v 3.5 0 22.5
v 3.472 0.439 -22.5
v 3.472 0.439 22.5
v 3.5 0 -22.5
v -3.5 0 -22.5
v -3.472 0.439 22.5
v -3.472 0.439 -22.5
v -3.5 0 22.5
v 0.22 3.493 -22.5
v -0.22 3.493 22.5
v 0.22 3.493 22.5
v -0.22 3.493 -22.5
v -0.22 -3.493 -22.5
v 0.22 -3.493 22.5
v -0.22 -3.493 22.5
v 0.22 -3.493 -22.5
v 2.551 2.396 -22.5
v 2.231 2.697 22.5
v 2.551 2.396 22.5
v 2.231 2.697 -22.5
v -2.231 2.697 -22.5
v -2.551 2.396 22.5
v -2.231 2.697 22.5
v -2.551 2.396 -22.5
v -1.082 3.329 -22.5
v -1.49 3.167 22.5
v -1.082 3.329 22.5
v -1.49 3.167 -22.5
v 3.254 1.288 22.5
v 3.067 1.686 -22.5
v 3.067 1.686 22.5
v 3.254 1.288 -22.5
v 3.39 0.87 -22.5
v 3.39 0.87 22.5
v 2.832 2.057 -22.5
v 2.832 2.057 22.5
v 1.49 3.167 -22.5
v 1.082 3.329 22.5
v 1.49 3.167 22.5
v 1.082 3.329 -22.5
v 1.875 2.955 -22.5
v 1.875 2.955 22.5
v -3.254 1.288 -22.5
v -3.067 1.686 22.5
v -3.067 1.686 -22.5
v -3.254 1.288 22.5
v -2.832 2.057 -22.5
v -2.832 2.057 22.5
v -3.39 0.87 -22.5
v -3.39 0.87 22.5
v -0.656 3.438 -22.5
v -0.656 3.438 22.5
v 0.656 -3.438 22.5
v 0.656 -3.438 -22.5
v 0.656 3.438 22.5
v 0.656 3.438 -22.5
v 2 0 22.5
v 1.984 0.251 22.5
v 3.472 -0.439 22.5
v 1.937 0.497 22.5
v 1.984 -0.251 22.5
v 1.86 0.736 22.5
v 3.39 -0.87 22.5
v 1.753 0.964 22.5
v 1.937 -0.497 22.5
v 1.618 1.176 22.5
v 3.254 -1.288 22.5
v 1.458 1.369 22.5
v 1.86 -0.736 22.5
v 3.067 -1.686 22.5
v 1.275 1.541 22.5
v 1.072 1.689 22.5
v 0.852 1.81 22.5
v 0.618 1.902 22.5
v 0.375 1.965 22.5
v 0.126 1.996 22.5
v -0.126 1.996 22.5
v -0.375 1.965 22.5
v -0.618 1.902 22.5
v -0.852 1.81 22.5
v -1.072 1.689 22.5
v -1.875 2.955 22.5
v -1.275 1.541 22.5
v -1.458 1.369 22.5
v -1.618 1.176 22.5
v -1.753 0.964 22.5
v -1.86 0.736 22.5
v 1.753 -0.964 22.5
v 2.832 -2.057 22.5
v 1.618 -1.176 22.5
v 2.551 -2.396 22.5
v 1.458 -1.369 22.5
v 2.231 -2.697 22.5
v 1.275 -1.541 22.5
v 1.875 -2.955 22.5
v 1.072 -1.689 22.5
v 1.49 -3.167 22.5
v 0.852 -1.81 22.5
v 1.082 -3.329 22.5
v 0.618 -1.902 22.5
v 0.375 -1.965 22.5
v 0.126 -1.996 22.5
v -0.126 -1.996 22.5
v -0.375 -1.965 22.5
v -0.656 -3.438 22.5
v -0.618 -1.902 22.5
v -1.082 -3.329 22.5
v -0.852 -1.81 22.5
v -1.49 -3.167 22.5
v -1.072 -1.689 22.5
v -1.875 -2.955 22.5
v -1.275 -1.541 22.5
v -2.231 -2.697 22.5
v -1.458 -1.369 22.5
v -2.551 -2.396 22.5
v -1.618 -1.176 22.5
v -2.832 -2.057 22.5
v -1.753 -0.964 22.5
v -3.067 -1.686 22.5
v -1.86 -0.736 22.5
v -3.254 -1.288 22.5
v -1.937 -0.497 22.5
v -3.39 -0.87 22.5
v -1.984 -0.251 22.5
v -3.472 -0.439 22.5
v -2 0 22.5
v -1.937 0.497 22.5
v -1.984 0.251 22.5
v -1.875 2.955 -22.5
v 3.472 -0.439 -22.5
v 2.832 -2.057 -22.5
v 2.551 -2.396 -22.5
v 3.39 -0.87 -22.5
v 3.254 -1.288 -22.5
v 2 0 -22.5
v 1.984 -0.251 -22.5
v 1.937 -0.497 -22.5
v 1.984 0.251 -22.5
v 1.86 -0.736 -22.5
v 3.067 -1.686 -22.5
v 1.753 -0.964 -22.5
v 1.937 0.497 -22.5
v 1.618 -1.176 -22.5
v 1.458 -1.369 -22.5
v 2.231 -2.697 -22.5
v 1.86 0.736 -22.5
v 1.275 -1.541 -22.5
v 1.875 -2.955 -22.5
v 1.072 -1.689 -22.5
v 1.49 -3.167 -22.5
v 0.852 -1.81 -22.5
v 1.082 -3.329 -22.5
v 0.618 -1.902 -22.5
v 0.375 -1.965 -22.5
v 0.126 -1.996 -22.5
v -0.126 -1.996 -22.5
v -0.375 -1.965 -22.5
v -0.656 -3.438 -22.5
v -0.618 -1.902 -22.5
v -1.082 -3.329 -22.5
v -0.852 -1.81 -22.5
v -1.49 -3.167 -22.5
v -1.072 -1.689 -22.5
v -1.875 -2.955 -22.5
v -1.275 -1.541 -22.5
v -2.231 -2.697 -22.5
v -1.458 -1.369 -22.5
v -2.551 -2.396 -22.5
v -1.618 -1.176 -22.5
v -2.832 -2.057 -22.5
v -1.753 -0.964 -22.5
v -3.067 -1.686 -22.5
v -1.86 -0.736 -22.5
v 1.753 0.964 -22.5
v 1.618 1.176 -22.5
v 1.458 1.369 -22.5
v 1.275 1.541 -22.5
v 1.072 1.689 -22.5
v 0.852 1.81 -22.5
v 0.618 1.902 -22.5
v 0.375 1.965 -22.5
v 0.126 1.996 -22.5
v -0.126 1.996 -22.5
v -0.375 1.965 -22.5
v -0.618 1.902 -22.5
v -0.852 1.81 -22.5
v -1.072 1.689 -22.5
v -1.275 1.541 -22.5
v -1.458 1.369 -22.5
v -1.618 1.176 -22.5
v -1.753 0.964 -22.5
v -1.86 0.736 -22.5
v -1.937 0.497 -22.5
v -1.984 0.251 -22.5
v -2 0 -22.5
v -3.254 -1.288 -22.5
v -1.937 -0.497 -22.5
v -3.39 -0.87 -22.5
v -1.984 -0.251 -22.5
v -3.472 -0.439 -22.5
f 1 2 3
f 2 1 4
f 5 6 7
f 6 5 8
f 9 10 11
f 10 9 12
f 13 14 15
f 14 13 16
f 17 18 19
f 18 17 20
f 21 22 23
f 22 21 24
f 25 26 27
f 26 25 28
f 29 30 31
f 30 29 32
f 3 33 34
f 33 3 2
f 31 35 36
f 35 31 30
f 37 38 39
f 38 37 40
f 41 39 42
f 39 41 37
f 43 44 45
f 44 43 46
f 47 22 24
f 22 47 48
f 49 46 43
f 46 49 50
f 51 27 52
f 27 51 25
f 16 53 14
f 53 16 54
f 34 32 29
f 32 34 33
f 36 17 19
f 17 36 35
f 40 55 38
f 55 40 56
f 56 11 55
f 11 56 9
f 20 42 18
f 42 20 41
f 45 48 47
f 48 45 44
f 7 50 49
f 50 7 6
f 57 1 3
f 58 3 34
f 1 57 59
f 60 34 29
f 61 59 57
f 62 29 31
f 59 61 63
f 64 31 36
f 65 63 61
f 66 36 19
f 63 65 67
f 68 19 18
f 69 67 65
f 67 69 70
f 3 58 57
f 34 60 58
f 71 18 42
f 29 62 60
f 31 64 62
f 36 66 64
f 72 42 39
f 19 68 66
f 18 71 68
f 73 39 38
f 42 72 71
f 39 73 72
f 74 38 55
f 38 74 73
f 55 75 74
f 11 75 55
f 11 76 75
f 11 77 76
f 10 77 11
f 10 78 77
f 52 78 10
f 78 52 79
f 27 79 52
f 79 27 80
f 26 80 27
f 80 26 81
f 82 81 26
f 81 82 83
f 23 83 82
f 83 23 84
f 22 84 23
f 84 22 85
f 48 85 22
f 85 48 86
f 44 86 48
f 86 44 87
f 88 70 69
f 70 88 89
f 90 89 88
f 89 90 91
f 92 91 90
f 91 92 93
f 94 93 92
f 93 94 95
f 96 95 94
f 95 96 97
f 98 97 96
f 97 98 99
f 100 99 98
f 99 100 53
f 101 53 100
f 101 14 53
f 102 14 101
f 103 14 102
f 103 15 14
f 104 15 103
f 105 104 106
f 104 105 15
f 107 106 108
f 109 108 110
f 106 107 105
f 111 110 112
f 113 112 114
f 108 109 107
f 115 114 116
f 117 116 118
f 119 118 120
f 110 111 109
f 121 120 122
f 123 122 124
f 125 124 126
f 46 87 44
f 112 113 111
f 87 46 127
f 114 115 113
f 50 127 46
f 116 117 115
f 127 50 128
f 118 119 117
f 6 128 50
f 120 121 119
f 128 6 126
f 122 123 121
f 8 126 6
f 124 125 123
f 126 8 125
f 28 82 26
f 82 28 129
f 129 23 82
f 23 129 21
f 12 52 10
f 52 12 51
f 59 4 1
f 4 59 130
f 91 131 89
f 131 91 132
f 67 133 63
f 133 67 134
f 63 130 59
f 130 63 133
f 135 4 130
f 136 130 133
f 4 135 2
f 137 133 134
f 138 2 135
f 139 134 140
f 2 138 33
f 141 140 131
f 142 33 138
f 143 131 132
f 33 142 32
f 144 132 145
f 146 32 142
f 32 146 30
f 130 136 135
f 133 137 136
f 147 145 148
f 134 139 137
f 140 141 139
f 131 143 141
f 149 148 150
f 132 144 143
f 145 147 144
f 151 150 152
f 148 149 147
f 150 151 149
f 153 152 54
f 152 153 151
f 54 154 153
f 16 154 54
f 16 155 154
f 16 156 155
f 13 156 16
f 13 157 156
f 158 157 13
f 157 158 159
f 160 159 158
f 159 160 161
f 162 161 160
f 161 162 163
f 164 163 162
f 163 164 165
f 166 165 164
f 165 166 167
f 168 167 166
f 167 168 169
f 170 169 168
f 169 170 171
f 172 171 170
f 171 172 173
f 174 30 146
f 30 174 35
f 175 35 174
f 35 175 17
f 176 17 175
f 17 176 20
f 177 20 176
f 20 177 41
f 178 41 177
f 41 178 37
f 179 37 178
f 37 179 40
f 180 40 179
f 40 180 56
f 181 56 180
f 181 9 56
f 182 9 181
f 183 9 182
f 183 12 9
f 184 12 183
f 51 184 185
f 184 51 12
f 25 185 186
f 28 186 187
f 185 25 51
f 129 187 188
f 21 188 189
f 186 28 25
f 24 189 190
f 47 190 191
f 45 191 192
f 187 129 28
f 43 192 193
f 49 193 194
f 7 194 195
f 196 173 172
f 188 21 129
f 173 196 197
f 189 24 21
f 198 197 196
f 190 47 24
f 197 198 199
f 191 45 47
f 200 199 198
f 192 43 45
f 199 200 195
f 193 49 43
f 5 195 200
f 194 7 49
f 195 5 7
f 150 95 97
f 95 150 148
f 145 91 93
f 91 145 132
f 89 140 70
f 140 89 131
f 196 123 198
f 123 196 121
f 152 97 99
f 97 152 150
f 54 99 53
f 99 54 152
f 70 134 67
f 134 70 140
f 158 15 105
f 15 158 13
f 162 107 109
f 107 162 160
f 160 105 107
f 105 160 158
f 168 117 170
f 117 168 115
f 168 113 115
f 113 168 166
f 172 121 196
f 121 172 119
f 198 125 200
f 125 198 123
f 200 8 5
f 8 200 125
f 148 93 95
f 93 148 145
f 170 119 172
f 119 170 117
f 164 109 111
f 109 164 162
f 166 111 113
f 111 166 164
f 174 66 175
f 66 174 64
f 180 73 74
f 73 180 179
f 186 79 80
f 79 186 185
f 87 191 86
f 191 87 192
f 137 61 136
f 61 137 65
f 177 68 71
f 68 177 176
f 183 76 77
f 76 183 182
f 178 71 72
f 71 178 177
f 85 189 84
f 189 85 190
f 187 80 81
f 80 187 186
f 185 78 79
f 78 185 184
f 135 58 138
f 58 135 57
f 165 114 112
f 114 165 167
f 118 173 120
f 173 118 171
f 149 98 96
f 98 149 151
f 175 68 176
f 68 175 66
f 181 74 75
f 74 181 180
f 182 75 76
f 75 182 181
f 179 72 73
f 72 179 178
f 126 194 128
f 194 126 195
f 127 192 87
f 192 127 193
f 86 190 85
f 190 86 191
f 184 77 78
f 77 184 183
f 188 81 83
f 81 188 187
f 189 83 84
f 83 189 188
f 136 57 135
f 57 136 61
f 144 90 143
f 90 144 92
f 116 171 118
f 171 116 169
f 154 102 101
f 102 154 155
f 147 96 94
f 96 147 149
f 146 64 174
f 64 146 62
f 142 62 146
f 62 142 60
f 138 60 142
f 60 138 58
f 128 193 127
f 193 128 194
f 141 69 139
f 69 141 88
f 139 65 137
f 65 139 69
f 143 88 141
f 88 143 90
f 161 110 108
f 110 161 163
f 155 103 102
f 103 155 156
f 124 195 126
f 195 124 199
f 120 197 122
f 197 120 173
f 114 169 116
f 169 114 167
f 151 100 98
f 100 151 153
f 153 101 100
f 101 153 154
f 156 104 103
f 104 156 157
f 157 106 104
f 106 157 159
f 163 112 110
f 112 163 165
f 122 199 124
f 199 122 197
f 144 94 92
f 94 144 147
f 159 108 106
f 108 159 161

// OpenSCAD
$fn = 50;


difference() {
	union() {
		translate(v = [0, 0, -22.5000000000]) {
			cylinder(h = 45, r = 3.5000000000);
		}
	}
	union() {
		translate(v = [0, 0, -100.0000000000]) {
			cylinder(h = 200, r = 2);
		}
	}
}
